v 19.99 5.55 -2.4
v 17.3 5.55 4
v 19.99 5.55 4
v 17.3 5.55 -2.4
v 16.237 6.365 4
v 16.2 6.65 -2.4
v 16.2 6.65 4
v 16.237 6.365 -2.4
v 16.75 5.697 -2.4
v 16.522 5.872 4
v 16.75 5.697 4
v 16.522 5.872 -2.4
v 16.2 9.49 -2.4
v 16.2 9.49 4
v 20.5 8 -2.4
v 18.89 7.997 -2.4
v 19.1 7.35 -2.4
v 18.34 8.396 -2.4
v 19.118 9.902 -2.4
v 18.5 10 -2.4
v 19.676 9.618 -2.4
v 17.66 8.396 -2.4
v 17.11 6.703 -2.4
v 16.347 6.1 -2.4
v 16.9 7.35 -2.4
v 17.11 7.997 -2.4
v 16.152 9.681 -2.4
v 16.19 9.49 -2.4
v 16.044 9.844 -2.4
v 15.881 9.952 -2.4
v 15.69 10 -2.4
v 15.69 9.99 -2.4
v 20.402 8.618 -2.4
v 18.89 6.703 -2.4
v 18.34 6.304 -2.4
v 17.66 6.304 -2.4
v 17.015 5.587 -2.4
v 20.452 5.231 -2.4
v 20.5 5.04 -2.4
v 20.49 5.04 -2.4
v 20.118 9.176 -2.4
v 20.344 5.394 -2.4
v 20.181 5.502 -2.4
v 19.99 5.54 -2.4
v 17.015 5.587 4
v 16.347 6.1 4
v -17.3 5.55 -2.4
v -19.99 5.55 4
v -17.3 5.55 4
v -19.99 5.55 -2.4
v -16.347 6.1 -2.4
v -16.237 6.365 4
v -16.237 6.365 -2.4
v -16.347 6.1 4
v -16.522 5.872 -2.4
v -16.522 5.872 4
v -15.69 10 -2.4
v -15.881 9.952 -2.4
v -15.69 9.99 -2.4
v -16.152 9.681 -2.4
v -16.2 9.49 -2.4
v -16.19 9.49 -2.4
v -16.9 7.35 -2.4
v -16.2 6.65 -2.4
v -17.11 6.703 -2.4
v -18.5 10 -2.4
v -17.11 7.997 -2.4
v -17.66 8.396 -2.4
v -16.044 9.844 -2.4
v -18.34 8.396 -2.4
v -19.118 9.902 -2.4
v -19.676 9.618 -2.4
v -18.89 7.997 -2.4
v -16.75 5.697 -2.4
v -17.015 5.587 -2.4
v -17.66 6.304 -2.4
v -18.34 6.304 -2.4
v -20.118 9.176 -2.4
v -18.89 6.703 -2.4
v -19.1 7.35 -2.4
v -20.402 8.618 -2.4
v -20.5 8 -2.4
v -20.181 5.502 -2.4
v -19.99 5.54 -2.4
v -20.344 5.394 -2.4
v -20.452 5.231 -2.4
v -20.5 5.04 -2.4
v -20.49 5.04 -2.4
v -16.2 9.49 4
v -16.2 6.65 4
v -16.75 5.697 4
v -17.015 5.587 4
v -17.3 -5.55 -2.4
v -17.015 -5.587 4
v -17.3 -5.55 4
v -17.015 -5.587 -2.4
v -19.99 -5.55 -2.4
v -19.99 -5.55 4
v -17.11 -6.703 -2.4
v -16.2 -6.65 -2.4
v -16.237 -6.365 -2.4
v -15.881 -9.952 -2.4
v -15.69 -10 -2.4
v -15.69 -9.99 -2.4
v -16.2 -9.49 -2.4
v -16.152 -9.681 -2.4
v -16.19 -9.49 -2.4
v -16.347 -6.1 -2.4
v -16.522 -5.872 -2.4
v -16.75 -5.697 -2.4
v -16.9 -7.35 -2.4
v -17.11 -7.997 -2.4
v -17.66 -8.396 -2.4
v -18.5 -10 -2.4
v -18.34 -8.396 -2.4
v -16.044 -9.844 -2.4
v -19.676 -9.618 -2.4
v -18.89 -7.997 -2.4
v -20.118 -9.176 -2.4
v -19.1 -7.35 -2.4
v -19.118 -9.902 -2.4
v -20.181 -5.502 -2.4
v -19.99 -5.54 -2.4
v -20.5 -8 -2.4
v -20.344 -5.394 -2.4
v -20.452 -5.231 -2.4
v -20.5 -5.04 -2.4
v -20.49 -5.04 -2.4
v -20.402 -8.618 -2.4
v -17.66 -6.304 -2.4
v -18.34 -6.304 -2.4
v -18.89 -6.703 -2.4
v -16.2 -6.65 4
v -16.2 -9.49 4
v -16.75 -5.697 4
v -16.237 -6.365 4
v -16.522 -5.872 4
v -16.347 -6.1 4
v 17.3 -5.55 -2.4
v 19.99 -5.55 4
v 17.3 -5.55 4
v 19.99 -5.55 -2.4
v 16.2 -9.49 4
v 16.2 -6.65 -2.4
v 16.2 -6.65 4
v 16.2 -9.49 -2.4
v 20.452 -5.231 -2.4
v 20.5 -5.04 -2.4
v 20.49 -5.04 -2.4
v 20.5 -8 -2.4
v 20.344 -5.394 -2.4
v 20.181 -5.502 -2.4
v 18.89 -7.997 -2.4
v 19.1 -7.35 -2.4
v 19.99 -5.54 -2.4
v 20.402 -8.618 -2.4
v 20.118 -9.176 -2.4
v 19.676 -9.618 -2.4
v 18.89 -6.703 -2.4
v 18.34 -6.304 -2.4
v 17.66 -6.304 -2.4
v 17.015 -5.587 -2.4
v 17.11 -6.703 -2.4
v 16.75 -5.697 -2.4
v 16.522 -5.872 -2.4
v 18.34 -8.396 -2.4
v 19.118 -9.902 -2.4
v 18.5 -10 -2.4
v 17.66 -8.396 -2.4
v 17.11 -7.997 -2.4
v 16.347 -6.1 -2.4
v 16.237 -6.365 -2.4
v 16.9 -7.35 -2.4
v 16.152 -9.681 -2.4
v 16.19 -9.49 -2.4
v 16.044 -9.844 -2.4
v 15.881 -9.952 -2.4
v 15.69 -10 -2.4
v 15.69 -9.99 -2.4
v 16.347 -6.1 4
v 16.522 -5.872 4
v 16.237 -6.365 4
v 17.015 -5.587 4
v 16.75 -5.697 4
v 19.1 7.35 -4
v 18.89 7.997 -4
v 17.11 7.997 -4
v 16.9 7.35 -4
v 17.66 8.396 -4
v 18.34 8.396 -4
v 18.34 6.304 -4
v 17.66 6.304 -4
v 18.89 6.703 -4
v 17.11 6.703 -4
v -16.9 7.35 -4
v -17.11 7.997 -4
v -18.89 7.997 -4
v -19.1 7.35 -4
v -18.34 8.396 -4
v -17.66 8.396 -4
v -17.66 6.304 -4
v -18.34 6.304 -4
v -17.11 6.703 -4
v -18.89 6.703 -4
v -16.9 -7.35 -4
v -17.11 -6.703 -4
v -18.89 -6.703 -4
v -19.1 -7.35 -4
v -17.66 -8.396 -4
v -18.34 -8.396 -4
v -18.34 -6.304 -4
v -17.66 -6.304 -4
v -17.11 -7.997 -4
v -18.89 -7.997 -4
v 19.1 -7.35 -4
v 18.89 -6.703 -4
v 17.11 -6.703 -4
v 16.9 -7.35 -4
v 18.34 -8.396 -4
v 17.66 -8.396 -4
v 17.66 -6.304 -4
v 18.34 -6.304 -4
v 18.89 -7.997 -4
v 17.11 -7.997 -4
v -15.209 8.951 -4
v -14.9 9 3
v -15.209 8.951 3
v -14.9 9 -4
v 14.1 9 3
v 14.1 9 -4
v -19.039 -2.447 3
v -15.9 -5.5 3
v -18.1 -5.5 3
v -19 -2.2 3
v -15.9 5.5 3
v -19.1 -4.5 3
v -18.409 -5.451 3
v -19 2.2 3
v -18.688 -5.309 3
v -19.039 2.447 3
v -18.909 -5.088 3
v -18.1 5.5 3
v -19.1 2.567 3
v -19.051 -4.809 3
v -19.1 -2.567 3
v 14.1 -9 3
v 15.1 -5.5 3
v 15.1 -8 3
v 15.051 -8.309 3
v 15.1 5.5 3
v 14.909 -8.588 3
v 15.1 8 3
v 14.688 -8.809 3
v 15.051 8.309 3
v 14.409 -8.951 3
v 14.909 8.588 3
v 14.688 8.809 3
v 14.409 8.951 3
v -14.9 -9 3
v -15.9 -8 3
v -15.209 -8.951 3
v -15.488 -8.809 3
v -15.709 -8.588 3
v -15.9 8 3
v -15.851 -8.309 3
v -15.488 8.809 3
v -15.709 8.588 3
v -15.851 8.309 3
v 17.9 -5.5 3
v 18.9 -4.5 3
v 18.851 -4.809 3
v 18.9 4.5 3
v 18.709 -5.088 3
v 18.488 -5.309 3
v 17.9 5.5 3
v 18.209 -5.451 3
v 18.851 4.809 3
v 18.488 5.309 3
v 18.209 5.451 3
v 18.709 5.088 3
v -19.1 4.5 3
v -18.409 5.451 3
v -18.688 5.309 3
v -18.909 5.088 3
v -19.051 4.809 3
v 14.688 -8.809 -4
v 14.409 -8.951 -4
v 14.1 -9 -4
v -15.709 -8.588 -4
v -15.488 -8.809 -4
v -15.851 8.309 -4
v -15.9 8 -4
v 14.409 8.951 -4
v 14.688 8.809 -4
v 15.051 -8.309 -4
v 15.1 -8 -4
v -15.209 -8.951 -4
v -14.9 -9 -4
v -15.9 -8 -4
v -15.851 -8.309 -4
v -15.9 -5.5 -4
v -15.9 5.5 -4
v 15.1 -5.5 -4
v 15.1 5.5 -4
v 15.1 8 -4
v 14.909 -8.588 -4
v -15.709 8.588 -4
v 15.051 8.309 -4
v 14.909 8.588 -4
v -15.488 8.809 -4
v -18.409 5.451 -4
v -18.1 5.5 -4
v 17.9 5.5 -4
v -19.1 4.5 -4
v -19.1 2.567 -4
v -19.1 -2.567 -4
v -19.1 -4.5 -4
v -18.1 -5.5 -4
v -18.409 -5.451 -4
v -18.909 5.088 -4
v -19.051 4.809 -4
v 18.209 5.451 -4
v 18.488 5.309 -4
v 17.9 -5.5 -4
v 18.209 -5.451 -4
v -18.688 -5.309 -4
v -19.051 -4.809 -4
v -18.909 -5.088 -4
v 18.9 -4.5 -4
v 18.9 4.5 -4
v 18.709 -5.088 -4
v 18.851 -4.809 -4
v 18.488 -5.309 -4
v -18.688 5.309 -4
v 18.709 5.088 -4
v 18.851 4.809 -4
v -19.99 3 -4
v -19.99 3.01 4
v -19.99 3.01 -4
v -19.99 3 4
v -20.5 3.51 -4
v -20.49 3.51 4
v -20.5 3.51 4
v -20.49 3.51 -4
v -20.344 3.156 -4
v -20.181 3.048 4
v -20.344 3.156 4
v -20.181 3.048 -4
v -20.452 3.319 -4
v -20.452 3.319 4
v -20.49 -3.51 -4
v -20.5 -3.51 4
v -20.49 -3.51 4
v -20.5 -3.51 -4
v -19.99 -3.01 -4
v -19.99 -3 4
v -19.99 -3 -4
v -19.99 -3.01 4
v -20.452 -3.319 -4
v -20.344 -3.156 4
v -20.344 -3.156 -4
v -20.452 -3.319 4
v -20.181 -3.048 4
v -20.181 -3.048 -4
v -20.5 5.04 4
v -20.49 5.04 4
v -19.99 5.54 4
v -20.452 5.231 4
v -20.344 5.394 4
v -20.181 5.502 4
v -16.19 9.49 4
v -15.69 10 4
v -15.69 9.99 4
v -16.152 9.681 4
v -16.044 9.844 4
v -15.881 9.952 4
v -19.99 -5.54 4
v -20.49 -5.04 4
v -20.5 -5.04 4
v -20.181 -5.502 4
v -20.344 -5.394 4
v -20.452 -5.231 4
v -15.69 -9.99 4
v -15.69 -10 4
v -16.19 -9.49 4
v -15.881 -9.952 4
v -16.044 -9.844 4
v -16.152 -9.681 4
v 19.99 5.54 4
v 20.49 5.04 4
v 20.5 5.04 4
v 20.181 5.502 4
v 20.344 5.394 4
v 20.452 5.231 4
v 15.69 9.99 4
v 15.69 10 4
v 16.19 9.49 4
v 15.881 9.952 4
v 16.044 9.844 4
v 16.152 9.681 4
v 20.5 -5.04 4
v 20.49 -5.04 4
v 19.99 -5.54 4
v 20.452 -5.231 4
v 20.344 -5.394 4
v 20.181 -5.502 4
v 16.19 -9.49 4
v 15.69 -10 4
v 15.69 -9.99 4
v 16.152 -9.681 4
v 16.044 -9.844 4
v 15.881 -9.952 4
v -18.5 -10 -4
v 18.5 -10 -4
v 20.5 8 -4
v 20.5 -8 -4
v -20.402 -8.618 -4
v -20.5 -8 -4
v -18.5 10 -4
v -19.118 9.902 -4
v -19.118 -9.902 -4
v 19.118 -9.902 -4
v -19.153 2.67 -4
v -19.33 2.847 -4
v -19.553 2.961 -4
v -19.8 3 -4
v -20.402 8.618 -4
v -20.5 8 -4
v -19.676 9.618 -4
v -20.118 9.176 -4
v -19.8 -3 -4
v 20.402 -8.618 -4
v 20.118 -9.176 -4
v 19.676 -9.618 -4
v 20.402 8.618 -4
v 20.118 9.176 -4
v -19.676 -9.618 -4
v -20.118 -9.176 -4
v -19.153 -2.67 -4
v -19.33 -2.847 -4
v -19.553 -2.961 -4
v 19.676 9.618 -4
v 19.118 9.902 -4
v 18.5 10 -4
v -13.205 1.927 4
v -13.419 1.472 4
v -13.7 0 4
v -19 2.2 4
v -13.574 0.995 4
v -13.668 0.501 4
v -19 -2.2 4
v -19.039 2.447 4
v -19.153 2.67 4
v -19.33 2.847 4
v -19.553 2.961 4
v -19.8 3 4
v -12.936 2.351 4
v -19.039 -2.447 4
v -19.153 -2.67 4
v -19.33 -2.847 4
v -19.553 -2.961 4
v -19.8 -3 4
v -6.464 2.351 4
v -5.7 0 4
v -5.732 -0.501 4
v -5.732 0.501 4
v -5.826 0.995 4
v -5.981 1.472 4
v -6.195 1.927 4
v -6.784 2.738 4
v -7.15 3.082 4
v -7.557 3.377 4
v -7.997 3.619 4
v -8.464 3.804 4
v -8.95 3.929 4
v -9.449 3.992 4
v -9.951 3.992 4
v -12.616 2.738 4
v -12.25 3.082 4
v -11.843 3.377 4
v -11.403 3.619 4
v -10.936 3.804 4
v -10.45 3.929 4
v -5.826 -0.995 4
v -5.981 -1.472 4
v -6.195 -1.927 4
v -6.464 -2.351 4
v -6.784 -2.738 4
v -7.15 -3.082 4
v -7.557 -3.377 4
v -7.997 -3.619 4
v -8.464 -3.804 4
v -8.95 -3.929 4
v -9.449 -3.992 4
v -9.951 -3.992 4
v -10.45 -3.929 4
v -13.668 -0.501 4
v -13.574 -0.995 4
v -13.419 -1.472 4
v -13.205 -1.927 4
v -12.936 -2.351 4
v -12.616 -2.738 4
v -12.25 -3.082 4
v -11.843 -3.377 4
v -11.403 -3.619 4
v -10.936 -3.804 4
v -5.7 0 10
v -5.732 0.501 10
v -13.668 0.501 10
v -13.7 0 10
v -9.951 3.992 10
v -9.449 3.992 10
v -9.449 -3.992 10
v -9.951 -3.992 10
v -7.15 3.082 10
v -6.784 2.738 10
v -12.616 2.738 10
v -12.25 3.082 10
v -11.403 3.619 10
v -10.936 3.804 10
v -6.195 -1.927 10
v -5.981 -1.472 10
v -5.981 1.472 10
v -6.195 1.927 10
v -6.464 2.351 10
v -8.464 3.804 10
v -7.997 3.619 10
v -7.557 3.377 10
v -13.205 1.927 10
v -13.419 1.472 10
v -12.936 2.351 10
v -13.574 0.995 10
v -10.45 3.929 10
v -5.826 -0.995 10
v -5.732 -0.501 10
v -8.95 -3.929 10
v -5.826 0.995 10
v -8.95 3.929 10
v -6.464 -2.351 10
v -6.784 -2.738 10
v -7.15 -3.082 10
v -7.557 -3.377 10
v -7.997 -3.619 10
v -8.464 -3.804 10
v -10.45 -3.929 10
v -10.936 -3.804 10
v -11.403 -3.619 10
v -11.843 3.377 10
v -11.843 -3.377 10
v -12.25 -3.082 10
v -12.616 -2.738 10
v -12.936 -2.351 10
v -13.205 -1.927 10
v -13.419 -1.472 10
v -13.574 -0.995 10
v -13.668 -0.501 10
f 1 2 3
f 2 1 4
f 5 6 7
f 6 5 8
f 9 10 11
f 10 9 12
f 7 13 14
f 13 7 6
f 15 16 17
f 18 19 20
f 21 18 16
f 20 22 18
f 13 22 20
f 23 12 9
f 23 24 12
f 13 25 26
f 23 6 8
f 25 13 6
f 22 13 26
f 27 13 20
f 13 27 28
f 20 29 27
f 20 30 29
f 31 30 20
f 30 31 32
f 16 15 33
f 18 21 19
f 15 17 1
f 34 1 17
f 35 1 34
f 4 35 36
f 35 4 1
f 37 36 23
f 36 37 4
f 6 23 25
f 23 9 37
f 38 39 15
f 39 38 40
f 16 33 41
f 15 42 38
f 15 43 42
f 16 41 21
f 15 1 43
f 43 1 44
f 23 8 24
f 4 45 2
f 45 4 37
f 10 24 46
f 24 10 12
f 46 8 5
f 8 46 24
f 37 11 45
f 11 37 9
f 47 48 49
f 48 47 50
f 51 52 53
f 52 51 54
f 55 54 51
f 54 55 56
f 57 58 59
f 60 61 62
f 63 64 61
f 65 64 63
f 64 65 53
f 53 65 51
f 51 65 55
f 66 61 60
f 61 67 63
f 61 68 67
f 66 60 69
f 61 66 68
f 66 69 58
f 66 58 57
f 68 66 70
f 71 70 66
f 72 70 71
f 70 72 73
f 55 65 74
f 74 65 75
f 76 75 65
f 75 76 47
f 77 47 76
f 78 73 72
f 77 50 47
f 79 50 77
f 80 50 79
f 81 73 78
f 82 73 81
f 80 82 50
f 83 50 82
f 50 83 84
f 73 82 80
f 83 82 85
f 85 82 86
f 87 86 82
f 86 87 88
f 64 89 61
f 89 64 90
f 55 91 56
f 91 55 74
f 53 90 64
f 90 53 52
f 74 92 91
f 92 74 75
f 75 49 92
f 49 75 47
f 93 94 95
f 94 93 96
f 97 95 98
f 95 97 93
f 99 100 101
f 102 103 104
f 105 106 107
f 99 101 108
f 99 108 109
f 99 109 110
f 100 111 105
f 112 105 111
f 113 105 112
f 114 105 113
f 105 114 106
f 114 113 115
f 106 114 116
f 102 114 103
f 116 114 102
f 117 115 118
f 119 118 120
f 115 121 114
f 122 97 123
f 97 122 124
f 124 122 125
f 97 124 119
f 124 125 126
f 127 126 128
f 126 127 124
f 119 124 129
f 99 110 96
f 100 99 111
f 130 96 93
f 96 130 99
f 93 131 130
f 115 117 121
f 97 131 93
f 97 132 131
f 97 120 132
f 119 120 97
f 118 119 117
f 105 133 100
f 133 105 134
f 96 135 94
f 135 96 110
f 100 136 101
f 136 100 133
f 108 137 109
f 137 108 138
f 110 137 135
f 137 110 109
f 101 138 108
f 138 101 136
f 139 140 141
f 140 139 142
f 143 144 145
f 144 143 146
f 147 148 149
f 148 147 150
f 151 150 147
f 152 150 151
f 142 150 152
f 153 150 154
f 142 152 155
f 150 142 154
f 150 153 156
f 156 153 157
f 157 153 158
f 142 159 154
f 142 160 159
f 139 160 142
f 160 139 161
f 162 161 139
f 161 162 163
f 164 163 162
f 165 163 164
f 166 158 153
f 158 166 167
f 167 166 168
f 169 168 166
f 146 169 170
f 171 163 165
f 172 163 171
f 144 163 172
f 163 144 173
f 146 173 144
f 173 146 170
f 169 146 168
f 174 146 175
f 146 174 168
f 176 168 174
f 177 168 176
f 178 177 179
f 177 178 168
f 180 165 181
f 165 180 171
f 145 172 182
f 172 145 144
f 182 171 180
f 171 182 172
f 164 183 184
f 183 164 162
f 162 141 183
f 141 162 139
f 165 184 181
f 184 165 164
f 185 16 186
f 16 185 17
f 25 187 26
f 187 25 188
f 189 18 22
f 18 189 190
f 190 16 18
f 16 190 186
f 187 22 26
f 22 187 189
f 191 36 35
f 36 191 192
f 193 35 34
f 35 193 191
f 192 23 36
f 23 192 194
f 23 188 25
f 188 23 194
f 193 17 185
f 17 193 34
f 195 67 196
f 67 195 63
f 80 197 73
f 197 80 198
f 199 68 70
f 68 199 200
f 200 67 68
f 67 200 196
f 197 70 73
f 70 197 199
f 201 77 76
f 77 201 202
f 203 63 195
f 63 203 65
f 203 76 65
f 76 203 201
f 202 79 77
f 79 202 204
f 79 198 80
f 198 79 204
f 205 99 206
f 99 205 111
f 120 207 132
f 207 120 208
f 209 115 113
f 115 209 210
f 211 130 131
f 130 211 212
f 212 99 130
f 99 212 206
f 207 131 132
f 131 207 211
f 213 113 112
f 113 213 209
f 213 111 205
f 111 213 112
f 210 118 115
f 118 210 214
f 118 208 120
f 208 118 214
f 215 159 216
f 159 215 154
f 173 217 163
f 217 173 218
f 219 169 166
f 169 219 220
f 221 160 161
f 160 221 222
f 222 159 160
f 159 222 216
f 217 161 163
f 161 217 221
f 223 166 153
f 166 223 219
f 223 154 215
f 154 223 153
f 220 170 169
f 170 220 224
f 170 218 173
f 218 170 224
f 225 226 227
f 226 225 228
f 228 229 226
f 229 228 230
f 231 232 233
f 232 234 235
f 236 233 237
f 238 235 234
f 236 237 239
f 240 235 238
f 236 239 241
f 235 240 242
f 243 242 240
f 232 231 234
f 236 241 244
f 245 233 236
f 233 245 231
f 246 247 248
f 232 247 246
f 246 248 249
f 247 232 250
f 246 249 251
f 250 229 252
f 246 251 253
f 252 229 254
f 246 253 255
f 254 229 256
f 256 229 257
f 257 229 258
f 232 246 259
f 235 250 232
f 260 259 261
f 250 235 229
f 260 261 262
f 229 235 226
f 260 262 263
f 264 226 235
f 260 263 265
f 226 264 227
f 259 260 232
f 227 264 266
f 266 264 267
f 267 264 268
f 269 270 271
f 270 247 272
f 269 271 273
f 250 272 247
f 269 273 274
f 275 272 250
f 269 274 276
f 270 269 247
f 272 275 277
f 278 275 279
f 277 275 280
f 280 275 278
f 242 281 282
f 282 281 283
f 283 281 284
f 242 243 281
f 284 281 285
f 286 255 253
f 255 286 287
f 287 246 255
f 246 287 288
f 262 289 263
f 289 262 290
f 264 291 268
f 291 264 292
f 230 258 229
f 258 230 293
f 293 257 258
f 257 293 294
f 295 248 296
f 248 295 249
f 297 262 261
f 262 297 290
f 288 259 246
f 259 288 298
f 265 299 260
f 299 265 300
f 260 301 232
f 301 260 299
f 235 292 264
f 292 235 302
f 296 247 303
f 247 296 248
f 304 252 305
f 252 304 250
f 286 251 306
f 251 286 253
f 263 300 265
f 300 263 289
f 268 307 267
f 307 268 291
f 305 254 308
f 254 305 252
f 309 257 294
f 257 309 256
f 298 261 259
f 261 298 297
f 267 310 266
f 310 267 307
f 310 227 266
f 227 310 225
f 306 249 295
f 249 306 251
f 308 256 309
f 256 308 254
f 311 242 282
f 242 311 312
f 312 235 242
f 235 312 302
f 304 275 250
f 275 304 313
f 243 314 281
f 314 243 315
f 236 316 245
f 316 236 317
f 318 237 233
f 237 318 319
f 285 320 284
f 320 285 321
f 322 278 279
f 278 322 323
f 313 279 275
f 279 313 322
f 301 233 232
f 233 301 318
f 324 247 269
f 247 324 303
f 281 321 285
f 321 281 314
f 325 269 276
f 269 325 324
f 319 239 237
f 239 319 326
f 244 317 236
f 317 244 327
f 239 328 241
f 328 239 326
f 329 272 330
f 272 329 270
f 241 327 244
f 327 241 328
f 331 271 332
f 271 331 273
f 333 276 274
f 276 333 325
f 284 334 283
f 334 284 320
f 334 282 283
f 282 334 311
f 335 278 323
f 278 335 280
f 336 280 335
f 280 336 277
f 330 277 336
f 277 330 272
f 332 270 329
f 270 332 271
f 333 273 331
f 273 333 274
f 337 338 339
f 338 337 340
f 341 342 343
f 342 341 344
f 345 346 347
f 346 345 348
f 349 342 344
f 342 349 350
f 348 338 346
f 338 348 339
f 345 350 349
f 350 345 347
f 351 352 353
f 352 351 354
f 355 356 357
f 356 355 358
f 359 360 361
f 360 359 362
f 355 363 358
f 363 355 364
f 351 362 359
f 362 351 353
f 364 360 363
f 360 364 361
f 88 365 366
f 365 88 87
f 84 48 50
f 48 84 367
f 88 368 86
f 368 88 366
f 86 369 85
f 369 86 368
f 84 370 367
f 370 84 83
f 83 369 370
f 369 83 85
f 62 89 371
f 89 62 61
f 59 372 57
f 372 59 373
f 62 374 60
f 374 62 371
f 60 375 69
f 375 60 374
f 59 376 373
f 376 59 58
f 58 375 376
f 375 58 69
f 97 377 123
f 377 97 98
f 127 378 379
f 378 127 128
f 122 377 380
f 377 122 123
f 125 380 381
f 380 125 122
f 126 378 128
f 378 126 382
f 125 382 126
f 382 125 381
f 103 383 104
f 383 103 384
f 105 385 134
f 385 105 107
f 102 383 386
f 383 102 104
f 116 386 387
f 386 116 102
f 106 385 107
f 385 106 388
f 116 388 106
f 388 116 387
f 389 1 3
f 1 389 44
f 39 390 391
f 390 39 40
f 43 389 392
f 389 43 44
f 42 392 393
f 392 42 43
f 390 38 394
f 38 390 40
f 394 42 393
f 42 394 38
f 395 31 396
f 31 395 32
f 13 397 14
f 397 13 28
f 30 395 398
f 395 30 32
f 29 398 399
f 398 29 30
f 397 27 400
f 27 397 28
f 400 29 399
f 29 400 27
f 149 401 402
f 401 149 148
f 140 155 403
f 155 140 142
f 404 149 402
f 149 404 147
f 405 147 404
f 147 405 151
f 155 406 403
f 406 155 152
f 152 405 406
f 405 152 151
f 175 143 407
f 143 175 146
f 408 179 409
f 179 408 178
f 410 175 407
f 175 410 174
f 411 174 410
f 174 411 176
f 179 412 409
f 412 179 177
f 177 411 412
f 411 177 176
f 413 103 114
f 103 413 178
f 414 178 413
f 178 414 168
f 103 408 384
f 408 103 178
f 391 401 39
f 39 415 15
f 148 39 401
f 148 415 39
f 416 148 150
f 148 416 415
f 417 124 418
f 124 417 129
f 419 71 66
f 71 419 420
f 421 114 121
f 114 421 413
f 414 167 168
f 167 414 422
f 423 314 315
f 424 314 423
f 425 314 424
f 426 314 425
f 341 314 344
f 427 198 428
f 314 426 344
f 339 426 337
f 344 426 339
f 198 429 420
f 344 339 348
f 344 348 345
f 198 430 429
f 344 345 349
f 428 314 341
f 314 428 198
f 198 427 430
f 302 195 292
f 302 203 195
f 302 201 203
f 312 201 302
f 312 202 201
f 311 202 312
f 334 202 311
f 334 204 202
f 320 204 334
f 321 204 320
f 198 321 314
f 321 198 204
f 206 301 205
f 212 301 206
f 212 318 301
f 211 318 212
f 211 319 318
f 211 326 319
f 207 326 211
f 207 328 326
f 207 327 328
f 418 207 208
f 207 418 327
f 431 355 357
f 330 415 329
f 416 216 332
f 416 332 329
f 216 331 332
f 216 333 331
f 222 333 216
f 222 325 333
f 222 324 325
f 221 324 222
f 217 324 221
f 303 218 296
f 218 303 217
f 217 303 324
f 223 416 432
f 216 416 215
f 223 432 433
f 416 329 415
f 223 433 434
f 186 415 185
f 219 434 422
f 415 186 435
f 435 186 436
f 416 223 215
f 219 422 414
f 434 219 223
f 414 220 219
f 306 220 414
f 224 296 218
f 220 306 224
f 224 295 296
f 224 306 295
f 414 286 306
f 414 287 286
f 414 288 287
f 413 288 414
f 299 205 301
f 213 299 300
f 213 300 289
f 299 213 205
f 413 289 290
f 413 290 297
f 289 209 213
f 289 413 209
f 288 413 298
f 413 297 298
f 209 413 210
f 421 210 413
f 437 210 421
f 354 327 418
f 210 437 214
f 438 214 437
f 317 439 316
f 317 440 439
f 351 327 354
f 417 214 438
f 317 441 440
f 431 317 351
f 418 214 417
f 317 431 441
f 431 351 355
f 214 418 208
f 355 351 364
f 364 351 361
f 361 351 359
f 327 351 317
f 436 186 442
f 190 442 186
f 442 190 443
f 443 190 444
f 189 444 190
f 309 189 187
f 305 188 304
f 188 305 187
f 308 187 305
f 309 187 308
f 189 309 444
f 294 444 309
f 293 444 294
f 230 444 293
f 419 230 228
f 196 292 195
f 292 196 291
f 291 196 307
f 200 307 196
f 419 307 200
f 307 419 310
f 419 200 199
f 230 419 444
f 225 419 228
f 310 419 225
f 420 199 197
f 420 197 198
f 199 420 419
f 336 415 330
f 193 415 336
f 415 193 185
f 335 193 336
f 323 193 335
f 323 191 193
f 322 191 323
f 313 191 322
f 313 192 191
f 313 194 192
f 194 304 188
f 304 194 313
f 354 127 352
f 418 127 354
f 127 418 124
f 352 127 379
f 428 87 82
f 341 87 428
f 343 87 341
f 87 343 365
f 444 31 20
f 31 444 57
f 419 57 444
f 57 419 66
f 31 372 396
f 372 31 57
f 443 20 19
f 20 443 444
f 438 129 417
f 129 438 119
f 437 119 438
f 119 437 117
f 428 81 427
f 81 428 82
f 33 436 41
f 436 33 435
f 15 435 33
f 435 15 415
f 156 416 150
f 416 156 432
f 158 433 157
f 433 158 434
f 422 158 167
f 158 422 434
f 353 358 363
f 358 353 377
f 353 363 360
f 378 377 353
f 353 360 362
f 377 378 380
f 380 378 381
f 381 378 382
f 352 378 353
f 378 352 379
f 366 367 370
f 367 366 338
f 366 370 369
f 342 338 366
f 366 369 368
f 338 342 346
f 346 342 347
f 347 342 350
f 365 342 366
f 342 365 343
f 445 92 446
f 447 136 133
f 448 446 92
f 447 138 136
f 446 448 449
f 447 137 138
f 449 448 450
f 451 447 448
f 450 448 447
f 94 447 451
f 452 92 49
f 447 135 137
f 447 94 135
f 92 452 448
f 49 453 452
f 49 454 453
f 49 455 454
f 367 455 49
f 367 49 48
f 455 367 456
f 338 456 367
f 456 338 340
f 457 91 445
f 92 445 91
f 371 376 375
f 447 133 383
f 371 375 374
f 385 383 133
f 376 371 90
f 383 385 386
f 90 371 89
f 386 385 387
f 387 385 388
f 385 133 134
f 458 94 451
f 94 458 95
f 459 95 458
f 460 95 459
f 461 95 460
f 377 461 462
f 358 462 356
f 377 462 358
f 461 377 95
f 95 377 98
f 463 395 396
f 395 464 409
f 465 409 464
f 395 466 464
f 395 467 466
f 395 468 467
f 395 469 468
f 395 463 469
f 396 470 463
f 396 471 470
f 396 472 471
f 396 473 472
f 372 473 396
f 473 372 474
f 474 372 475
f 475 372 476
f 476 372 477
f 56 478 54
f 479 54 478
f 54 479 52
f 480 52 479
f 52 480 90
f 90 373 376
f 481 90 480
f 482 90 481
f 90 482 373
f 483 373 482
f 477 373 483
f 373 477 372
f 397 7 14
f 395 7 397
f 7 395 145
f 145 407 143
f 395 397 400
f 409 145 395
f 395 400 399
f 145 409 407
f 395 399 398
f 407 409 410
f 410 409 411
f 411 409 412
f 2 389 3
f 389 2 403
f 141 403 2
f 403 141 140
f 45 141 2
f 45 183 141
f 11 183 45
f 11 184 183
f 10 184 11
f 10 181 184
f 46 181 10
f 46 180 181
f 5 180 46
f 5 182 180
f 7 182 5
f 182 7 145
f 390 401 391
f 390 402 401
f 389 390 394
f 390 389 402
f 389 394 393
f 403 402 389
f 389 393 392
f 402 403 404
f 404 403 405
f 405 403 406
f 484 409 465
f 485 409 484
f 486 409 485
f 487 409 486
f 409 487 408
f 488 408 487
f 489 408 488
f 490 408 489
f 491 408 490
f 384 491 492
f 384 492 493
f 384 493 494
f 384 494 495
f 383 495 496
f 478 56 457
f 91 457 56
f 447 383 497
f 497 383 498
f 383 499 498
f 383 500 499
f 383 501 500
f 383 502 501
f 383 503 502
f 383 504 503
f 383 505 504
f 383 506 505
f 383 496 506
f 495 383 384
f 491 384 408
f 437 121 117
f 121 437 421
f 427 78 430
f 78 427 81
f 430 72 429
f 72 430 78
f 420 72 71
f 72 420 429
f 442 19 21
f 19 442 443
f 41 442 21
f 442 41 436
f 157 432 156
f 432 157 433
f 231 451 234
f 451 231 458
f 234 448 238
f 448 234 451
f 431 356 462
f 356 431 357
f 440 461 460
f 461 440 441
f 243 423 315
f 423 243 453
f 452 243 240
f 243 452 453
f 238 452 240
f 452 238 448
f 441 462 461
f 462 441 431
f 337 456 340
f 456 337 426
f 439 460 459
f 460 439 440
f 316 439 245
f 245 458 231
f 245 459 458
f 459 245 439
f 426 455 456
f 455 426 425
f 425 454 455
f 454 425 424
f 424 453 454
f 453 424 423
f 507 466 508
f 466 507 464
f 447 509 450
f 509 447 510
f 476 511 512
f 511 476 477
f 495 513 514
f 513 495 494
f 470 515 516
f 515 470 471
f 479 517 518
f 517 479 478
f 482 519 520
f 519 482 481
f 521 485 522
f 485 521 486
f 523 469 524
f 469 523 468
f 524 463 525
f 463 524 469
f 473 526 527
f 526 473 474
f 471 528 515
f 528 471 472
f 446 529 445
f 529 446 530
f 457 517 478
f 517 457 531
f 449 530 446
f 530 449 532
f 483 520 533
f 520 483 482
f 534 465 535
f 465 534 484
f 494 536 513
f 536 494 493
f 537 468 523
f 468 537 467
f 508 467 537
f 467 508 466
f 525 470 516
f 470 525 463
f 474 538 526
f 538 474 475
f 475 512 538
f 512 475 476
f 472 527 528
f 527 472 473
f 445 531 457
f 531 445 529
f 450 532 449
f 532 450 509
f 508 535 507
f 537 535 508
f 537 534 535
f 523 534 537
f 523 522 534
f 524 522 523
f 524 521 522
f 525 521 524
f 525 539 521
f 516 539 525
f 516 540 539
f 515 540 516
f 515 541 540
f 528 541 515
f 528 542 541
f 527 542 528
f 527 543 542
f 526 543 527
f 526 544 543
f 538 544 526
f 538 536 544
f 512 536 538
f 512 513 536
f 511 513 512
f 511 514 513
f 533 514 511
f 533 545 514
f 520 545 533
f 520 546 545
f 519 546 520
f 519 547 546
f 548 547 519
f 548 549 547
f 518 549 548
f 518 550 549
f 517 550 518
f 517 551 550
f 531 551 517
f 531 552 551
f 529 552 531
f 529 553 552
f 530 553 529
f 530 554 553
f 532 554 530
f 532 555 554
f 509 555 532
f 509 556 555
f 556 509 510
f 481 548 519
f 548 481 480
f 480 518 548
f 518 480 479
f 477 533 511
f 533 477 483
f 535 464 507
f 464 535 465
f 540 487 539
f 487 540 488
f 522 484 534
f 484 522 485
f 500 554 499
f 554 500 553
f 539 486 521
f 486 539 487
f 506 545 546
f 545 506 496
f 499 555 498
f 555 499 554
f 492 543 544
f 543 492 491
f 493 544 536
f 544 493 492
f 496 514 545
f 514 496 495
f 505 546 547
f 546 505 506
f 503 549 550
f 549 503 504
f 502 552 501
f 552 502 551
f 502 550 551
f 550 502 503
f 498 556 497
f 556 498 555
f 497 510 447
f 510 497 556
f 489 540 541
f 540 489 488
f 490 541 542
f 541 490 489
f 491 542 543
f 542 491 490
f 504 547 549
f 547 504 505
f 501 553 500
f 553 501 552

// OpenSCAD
// file: obiscad/attach.scad
//---------------------------------------------------------------
//-- Openscad Attachment library
//-- Attach parts easily. Make your designs more reusable and clean
//---------------------------------------------------------------
//-- This is a component of the obiscad opescad tools by Obijuan
//-- (C) Juan Gonzalez-Gomez (Obijuan)
//-- Sep-2012
//---------------------------------------------------------------
//-- Released under the GPL license
//---------------------------------------------------------------

use <vector.scad>

//--------------------------------------------------------------------
//-- Draw a connector
//-- A connector is defined a 3-tuple that consist of a point
//--- (the attachment point), and axis (the attachment axis) and
//--- an angle the connected part should be rotate around the 
//--  attachment axis
//--
//--- Input parameters:
//--
//--  Connector c = [p , n, ang] where:
//--
//--     p : The attachment point
//--     v : The attachment axis
//--   ang : the angle
//--------------------------------------------------------------------
module connector(c)
{
  //-- Get the three components from the connector
  p = c[0];
  v = c[1];
  ang = c[2];

  //-- Draw the attachment poing
  color("Gray") point(p);

  //-- Draw the attachment axis vector (with a mark)
  translate(p)
    rotate(a=ang, v=v)
    color("Gray") vector(unitv(v)*6, l_arrow=2, mark=true);
}


//-------------------------------------------------------------------------
//--  ATTACH OPERATOR
//--  This operator applies the necesary transformations to the 
//--  child (attachable part) so that it is attached to the main part
//--  
//--  Parameters
//--    a -> Connector of the main part
//--    b -> Connector of the attachable part
//-------------------------------------------------------------------------
module attach(a,b)
{
  //-- Get the data from the connectors
  pos1 = a[0];  //-- Attachment point. Main part
  v    = a[1];  //-- Attachment axis. Main part
  roll = a[2];  //-- Rolling angle
  
  pos2 = b[0];  //-- Attachment point. Attachable part
  vref = b[1];  //-- Atachment axis. Attachable part
                //-- The rolling angle of the attachable part is not used

  //-------- Calculations for the "orientate operator"------
  //-- Calculate the rotation axis
  raxis = cross(vref,v);
    
  //-- Calculate the angle between the vectors
  ang = anglev(vref,v);
  //--------------------------------------------------------.-

  //-- Apply the transformations to the child ---------------------------

  //-- Place the attachable part on the main part attachment point
  translate(pos1)
    //-- Orientate operator. Apply the orientation so that
    //-- both attachment axis are paralell. Also apply the roll angle
    rotate(a=roll, v=v)  rotate(a=ang, v=raxis)
      //-- Attachable part to the origin
      translate(-pos2)
	children(0); 
}


//--------------------------------------------------------------------
//---   An example of the attach operator
//---  
//---  There are two parts: the main body and an arm
//---  They both are cubes (for simplicity)
//---
//--   In the main body there are 2 connectors defined, so that
//--  the arm can be attached to any of them (or both if you like)
//------------------------------------------------------------------

//-- In the debug mode the connectors and additional information
//-- are shown
debug=true;

//-- Define the Main part: A cube
//-- Two attachment points are defined: one on the top, another in the
//--- left side
size = [10,10,10];

//-- Connectors defined:

//--     Att. point       Att. Axis  Roll
c1 = [ [0,0,size[2]/2],  [0,0,1],     20];  //-- Connector on the top
c2 = [ [-size[0]/2,0,0], [-1,0,0],    90];  //-- Connector on the left


//-- Draw the main part along with the connectors (for debugging)
cube(size,center=true);

//-- In debug mode: Draw the main part connectors!
if (debug) {
  connector(c1);
  connector(c2);
}

//-- Define the Attachable part. It is another cube, with one connector
asize = [5,20,3];
a = [ [0,asize[1]/2-3,-asize[2]/2], [0,0,1], 0  ];


//-- Do the attach!
//-- Just change c1 by c2 to attach the part to the other 
//-- connector. Super-easy!! :-)
//-- Modify the c1 and c2 roll angle for rotating the attachable
//--  part to the desired orientation
attach(c1,a)
  //-- This is the attachable part! 
  union() {
    cube(asize,center=true);  //-- The part

    //-- In debug mode show additional info:
    if (debug) {
      frame(l=10);    //-- The part frame of reference.
      connector(a);   //-- Show the part connector
    }
  };

  
// file: obiscad/bcube.scad
//------------------------------------------------------------------------------
//  Bevel edge cube.
//  (c) Juan Gonzalez-Gomez (Obijuan), Sep-2012
//------------------------------------------------------------------------------

//----------------- IMPLEMENTATION USING THE MINKOWSKI OPERATOR ----------------

//------------------------------------------------------------------------------
//-- Bevel Cube main function
//-- Parameters:
//--   * Size:  Cube size
//--   * cr : Corner radius (if cr==0, a standar cube is built)
//--   * cres:  Corner resolution (in points). cres=0 means flat corners
//------------------------------------------------------------------------------
module bcube(size,cr=0,cres=0)
{
  //-- Internal cube size
  bsize = size - 2*[cr,cr,0];

  //-- Get the (x,y) coorner coordinates in the 1st cuadrant
  x = bsize[0]/2;
  y = bsize[1]/2;

  //-- A corner radius of 0 means a standar cube!
  if (cr==0)
    cube(bsize,center=true);
  else {

      
      //-- The height of minkowski object is double. So
      //-- we sould scale by 0.5
      scale([1,1,0.5])

      //-- This translation is for centering the minkowski objet
      translate([-x, -y,0])

      //-- Built the  beveled cube with minkowski
      minkowski() {

        //-- Internal cube
        cube(bsize,center=true);

        //-- Cylinder in the corner (1st cuadrant)
        translate([x,y, 0])
          cylinder(r=cr, h=bsize[2],center=true, $fn=4*(cres+1));
      }
  }

}


//-- Examples of use of the bcube() module

//-- Standar cube
translate([-15,15,0])
bcube([20,20,10]);

//-- Beveled cube (0 point resolution)
translate([15,15,0])
  bcube([20,20,10],cr=4);

//-- Beveled cube (1 point resolution)
translate([-15,-15,0])
  bcube([20,20,10],cr=4, cres=1);

//-- Beveled cube (4 points resolution)
translate([15,-15,0])
  bcube([20,20,10],cr=4, cres=4);
// file: obiscad/utils.scad
//---------------------------------------------------------------
//-- Utils. General utilities...
//-- This is a component of the obiscad opescad tools by Obijuan
//-- (C) Juan Gonzalez-Gomez (Obijuan)
//-- Sep-2012
//---------------------------------------------------------------
//-- Released under the GPL license
//---------------------------------------------------------------

//-----------------------------------------------------
//-- Functions for converting a scalar into a vector:
//-----------------------------------------------------
//-- The scalar is interpreted as the x coordinate
function VX(x) = [x,0,0];

//-- The scalar is interpreted as the y coordinate
function VY(y) = [0,y,0];

//-- The scalar is interpreted as the z coordinate
function VZ(z) = [0,0,z];


//-----------------------------------------
//-- Definition for accessing vector componentes easily
//--------------------------------------------------------
X = 0;
Y = 1;
Z = 2;
// main file
//-------------------------------------------------------------------
//-- Servo lid replacement
//-- (c) Juan Gonzalez-Gomez (Obijuan). Sep-2012
//-------------------------------------------------------------------
//-- The original lid has been design for the Futaba 3003 servos
//-- But, as it is a parameterized design, the user can easily
//-- adapt to other servos
//--
//--  In addition, it is very easy to modify the lid to add a fake
//--- shaft, or in general customize it for improving the design
//--
//--  It is particulary interesting for designing robots. If a fake
//--  shaft is included, the mechanical designs are greatly simplified! 
//-------------------------------------------------------------------
//-- Released under the GPL license. 
//-------------------------------------------------------------------

//---  Obiscad!!
include <obiscad/utils.scad>
use <obiscad/bcube.scad>
use <obiscad/attach.scad>
use <obiscad/bevel.scad>

//-----------------------------------------------------------------------------------
//-- USER AREA. The user should change this parameters depending on the Servo used  
//-- The default values have been calculated for the SERVO FUTABA 3003
//-----------------------------------------------------------------------------------

//-- Fake shaft
fake_shaft = true;   //-- Set to false for removing
fake_shaft_len = 6;  //-- Shaft length
fake_shaft_diam = 8;  //-- Shaft diameter
fake_shaft_xpos = -9.7;  //-- X coordinate of the shaf position



//-------------------------- Main Base --------------------------
bsize = [41, 20, 8];  //-- base size
b_cr=2;               //-- Base corner radius
b_cres=4;             //-- Baser corner resolution


//-- ----------------------- Screw cutouts ----------------------
//-- These are the areas removed from the main base to give
//-- room to the screw heads
screw_lh = 1.6;         //- Screw layer height, Relative to the bottom
screw_head_diam = 3.2;  //-- Screw head diameter
screw_head_clear = 0.2; //-- Space between the screw head and the base


//-------------------------- Drills ------------------------------
ddiam=2.2;  //-- Drills diameter
ddx=36;     //-- Distance in the x axis between the drills
ddy=14.7;   //-- Distance in the y axis between the distance

//-------------------------- Electronic cutouts -------------------
//-- These are removed from the bottom of the base to make room
//-- for the servo electronics
elec_cutout_lh = 7;

//-- dimensions (on xy plane) of the cutouts
elec_cutout_dim = [
  [31, 18],   //-- Left cutout
  [38,  11],   //-- Right cutout
];

//-- Distance from the nearer drill (on the x axis)
//-- (not from the drill center, but the nearest drill surface)
//-- (so that it can be meassured easily with a caliper)
elec_cutout_clearx = [
  1, -2
];

elec_co_cr = 1;    //-- Corner radius
elec_co_cres = 4;  //-- Corner resolution

//-------------------------- Cable hole ----------------------------
//-- Cable hole dimensions
cable_hole_dim = [1.5, 6];

ch_cr = 0.8;  //-- Cable hole corner radius
ch_cres = 4;  //-- Cable hole corner resolution

//------------------------ Beveled edges -----------------------------
bevel_cr = 0.5;




//---------------------------------------------------------------------------------
//---        IMPLEMENTATION!!
//---------------------------------------------------------------------------------
//--  The USER should be able to change the base modifying only the above
//--  user parameters
//--
//--  The implementation is divided into 2 stages:
//--
//--  1) DATA calculation: It creates tables and definitions for further
//--     build the base more easily
//--  2) CODE: It just build the Servo Base, based only on the data
//-----------------------------------------------------------------------------------


//---------------------------------------
//-- DATA for the drills
//---------------------------------------
//-- Calculate the drill coordinates from the center of the base
dx=ddx/2;
dy=ddy/2;

//-- Build the drill table, for automating the process of 
//-- making drills
//-- All the drill are symetric respect the x and y axis
drill_table = [
  [dx,   dy, 0],
  [-dx,  dy, 0],
  [-dx, -dy, 0],
  [dx,  -dy, 0],
];


//-------------------------------------------------------------
//-- DATA for the First layer: screw layer
//-------------------------------------------------------------

//-- Extra value. Does not matter the value (but it should be > 0
extra = 5;


//-- Calculate the clear distance from the drill center
clear = screw_head_diam/2 + screw_head_clear;

//-- Calculate the cutout size
scx = bsize[X]/2-drill_table[0][X]+clear+extra;
scy = bsize[Y]/2-drill_table[0][Y]+clear+extra;
screw_cutout_size = [scx,scy, bsize[Z]];

//-- vector for the z position of the cutouts:
//-- They are screw_lh high from the bottom 
sc_z = [0,0, -bsize[Z]/2+screw_lh];


//-- Connector table. It contains the pairs of connectors for performing
//-- the attach operation.
//-- The first connector of the pair belongs to the base, the second to the cutout
//-- The connectors coordinates are relative to the drills
screw_connector_table = [

  //-- First quadrant
  [ [drill_table[0]+[-clear, -clear,0]+sc_z, [0,0,1], 0 ],  //-- First pair of connectors
   [[-screw_cutout_size[X]/2, -screw_cutout_size[Y]/2, -screw_cutout_size[Z]/2],[0,0,1],0]
  ],

  //-- Second quadrant
  [ [drill_table[1]+[clear, -clear,0]+sc_z, [0,0,1], 0 ],
    [[screw_cutout_size[X]/2, -screw_cutout_size[Y]/2, -screw_cutout_size[Z]/2],[0,0,1],0]
  ],

  //-- Third quadrant
  [ [drill_table[2]+[clear, clear,0]+sc_z, [0,0,1], 0 ],
    [[screw_cutout_size[X]/2, screw_cutout_size[Y]/2, -screw_cutout_size[Z]/2],[0,0,1],0]
  ],

  //-- Forth quadrant
  [ [drill_table[3]+[-clear, clear,0]+sc_z, [0,0,1], 0 ],
    [[-screw_cutout_size[X]/2, screw_cutout_size[Y]/2, -screw_cutout_size[Z]/2],[0,0,1],0]
  ],
 
];

//---------------------------------------
//-- DATA for the electronics cutouts
//---------------------------------------

//-- vector for the z position of the cutouts:
//-- They are elec_cutout_lh high from the bottom 
ec_z = [0,0, -bsize[Z]/2+elec_cutout_lh];

//-- Auxiliary table with the cutout size
elec_co_size = [
  [elec_cutout_dim[0][X], elec_cutout_dim[0][Y], bsize[Z]],
  [elec_cutout_dim[1][X], elec_cutout_dim[1][Y], bsize[Z]]
];


//-- Connector table. It contains the pairs of connectors for performing
//-- the attach operation.
//-- The first connector of the pair belongs to the base, the second to the cutout
//-- The connectors coordinates are relative to the drills
elec_connector_table = [

  //-- Connector pair for the Left cutout (relative to the upper-left drill)
  [ [VX(drill_table[1][X]+ddiam/2+elec_cutout_clearx[0])+
     VY(elec_co_size[0][Y]/2)+ ec_z,
     [0,0,1], 0],                        //-- Base connector
     
    [[-elec_co_size[0][X]/2, elec_co_size[0][Y]/2 ,elec_co_size[0][Z]/2],[0,0,1],0]
  ],
 
  //-- connector pair for the right cutout (relative to the upper-right drill)
  [ [VX(drill_table[0][X]-ddiam/2-elec_cutout_clearx[1])+
     VY(elec_co_size[1][Y]/2)+ec_z,
     [0,0,1], 0],

    [[elec_co_size[1][X]/2, elec_co_size[1][Y]/2 ,elec_co_size[1][Z]/2],[0,0,1],0]
  ],

];

//--------------------------------
//-- DATA for the cable hole
//--------------------------------
//-- Calculate the cable hole size
//-- In the x-axis is doble sized
ch_size = [2*cable_hole_dim[X], cable_hole_dim[Y], bsize[Z]+extra];

//-- Connectors pair for attaching a bcube and make the difference
ch_conn_pair = [
  [[-bsize[X]/2,0,0], [0,0,1], 0],
  [[0,0,0], [0,0,1], 0],
];

//---------------------------------------
//-- DATA for beveling some edges
//---------------------------------------

//-- Table of Pair of connectors for beveling
//-- corner connector, normal connect and bevel length
bevel_table = [
  
  //-- cable hole external corners
  //-- Upper
  [ [[-bsize[X]/2, ch_size[Y]/2 ,0], [0 ,0 ,1], 0],
    [[-bsize[X]/2, ch_size[Y]/2 ,0], [-1,-1,0], 0],
    bsize[Z]+extra 
  ],

  //-- Lower
  [ [[-bsize[X]/2, -ch_size[Y]/2 ,0], [0 ,0 ,1], 0],
    [[-bsize[X]/2, -ch_size[Y]/2 ,0], [-1,1,0], 0],
    bsize[Z]+extra 
  ],

  //-- Beveling the Upper-left screw cutout (1) 
  [ [[-bsize[X]/2, drill_table[1][Y]-clear ,bsize[Z]/2], [0 ,0 ,1], 0],
    [[-bsize[X]/2, drill_table[1][Y]-clear ,bsize[Z]/2], [-1,1,0], 0],
    2*(bsize[Z]-screw_lh) 
  ],

  //-- Beveling the Upper-left screw cutout (2) 
  [ [[drill_table[1][X]+clear, bsize[Y]/2 ,bsize[Z]/2], [0 ,0 ,1], 0],
    [[drill_table[1][X]+clear, bsize[Y]/2 ,bsize[Z]/2], [-1,1,0], 0],
    2*(bsize[Z]-screw_lh) 
  ],

   //-- Beveling the lower-left screw cutout (1) 
  [ [[-bsize[X]/2, drill_table[2][Y]+clear ,bsize[Z]/2], [0 ,0 ,1], 0],
    [[-bsize[X]/2, drill_table[2][Y]+clear ,bsize[Z]/2], [-1,-1,0], 0],
    2*(bsize[Z]-screw_lh) 
  ],

  //-- Beveling the lower-left screw cutout (2) 
  [ [[drill_table[2][X]+clear, -bsize[Y]/2 ,bsize[Z]/2], [0 ,0 ,1], 0],
    [[drill_table[2][X]+clear, -bsize[Y]/2 ,bsize[Z]/2], [-1,-1,0], 0],
    2*(bsize[Z]-screw_lh) 
  ], 

  //-- Beveling the Upper-right screw cutout (1) 
  [ [[bsize[X]/2, drill_table[0][Y]-clear ,bsize[Z]/2], [0 ,0 ,1], 0],
    [[bsize[X]/2, drill_table[0][Y]-clear ,bsize[Z]/2], [1,1,0], 0],
    2*(bsize[Z]-screw_lh) 
  ],

  //-- Beveling the Upper-right screw cutout (2) 
  [ [[drill_table[0][X]-clear, bsize[Y]/2 ,bsize[Z]/2], [0 ,0 ,1], 0],
    [[drill_table[0][X]-clear, bsize[Y]/2 ,bsize[Z]/2], [1,1,0], 0],
    2*(bsize[Z]-screw_lh) 
  ],

   //-- Beveling the lower-right screw cutout (1) 
  [ [[bsize[X]/2, drill_table[3][Y]+clear ,bsize[Z]/2], [0 ,0 ,1], 0],
    [[bsize[X]/2, drill_table[3][Y]+clear ,bsize[Z]/2], [1,-1,0], 0],
    2*(bsize[Z]-screw_lh) 
  ],

  //-- Beveling the lower-right screw cutout (2) 
  [ [[drill_table[3][X]-clear, -bsize[Y]/2 ,bsize[Z]/2], [0 ,0 ,1], 0],
    [[drill_table[3][X]-clear, -bsize[Y]/2 ,bsize[Z]/2], [1,-1,0], 0],
    2*(bsize[Z]-screw_lh) 
  ], 

];

//----------------------------------
//--  Fake shaft
//----------------------------------
//-- Define the connector pair
fs_con_pair = [
  [ [fake_shaft_xpos, 0, bsize[Z]/2],[0,0,1], 0],
  [[0,0,-fake_shaft_len/2],[0,0,1],0]
];


//----------------------------------------------------------------
//---         CODE!!
//----------------------------------------------------------------
//-- No numbers. Just the actions for creating the base
//-- It is very easy to remove parts: comment them out!
//-----------------------------------------------------------------


difference() {

  //-- Main Base
  bcube(bsize,cr=b_cr, cres=b_cres);

  
  //-- Screw cutouts
  for (con_pair = screw_connector_table) {
    attach(con_pair[0], con_pair[1])
      bcube(screw_cutout_size, cr=ddiam/2, cres=5);
  }
  

  //-- Drills
  for (pos  = drill_table) {
    translate(pos)
      cylinder(r=ddiam/2, h=bsize[Z]+extra, center=true, $fn=10);
  }

  //-- Electronics cutouts
  for (i=[0:1]) {
    attach(elec_connector_table[i][0], elec_connector_table[i][1])
      bcube(elec_co_size[i] , cr=elec_co_cr, cres = elec_co_cres);
  }

  //-- Cable hole
  attach(ch_conn_pair[0],ch_conn_pair[1])
    bcube(ch_size, cr=ch_cr, cres=ch_cres);

  //-- Beveling the edges
  for (tuple = bevel_table)
    bevel( tuple[0], tuple[1], l=tuple[2], cr=bevel_cr);

}


//-- Fake shaft

if (fake_shaft) {
  attach(fs_con_pair[0], fs_con_pair[1])
    cylinder(r=fake_shaft_diam/2, h=fake_shaft_len,center=true, $fn=50);
}
